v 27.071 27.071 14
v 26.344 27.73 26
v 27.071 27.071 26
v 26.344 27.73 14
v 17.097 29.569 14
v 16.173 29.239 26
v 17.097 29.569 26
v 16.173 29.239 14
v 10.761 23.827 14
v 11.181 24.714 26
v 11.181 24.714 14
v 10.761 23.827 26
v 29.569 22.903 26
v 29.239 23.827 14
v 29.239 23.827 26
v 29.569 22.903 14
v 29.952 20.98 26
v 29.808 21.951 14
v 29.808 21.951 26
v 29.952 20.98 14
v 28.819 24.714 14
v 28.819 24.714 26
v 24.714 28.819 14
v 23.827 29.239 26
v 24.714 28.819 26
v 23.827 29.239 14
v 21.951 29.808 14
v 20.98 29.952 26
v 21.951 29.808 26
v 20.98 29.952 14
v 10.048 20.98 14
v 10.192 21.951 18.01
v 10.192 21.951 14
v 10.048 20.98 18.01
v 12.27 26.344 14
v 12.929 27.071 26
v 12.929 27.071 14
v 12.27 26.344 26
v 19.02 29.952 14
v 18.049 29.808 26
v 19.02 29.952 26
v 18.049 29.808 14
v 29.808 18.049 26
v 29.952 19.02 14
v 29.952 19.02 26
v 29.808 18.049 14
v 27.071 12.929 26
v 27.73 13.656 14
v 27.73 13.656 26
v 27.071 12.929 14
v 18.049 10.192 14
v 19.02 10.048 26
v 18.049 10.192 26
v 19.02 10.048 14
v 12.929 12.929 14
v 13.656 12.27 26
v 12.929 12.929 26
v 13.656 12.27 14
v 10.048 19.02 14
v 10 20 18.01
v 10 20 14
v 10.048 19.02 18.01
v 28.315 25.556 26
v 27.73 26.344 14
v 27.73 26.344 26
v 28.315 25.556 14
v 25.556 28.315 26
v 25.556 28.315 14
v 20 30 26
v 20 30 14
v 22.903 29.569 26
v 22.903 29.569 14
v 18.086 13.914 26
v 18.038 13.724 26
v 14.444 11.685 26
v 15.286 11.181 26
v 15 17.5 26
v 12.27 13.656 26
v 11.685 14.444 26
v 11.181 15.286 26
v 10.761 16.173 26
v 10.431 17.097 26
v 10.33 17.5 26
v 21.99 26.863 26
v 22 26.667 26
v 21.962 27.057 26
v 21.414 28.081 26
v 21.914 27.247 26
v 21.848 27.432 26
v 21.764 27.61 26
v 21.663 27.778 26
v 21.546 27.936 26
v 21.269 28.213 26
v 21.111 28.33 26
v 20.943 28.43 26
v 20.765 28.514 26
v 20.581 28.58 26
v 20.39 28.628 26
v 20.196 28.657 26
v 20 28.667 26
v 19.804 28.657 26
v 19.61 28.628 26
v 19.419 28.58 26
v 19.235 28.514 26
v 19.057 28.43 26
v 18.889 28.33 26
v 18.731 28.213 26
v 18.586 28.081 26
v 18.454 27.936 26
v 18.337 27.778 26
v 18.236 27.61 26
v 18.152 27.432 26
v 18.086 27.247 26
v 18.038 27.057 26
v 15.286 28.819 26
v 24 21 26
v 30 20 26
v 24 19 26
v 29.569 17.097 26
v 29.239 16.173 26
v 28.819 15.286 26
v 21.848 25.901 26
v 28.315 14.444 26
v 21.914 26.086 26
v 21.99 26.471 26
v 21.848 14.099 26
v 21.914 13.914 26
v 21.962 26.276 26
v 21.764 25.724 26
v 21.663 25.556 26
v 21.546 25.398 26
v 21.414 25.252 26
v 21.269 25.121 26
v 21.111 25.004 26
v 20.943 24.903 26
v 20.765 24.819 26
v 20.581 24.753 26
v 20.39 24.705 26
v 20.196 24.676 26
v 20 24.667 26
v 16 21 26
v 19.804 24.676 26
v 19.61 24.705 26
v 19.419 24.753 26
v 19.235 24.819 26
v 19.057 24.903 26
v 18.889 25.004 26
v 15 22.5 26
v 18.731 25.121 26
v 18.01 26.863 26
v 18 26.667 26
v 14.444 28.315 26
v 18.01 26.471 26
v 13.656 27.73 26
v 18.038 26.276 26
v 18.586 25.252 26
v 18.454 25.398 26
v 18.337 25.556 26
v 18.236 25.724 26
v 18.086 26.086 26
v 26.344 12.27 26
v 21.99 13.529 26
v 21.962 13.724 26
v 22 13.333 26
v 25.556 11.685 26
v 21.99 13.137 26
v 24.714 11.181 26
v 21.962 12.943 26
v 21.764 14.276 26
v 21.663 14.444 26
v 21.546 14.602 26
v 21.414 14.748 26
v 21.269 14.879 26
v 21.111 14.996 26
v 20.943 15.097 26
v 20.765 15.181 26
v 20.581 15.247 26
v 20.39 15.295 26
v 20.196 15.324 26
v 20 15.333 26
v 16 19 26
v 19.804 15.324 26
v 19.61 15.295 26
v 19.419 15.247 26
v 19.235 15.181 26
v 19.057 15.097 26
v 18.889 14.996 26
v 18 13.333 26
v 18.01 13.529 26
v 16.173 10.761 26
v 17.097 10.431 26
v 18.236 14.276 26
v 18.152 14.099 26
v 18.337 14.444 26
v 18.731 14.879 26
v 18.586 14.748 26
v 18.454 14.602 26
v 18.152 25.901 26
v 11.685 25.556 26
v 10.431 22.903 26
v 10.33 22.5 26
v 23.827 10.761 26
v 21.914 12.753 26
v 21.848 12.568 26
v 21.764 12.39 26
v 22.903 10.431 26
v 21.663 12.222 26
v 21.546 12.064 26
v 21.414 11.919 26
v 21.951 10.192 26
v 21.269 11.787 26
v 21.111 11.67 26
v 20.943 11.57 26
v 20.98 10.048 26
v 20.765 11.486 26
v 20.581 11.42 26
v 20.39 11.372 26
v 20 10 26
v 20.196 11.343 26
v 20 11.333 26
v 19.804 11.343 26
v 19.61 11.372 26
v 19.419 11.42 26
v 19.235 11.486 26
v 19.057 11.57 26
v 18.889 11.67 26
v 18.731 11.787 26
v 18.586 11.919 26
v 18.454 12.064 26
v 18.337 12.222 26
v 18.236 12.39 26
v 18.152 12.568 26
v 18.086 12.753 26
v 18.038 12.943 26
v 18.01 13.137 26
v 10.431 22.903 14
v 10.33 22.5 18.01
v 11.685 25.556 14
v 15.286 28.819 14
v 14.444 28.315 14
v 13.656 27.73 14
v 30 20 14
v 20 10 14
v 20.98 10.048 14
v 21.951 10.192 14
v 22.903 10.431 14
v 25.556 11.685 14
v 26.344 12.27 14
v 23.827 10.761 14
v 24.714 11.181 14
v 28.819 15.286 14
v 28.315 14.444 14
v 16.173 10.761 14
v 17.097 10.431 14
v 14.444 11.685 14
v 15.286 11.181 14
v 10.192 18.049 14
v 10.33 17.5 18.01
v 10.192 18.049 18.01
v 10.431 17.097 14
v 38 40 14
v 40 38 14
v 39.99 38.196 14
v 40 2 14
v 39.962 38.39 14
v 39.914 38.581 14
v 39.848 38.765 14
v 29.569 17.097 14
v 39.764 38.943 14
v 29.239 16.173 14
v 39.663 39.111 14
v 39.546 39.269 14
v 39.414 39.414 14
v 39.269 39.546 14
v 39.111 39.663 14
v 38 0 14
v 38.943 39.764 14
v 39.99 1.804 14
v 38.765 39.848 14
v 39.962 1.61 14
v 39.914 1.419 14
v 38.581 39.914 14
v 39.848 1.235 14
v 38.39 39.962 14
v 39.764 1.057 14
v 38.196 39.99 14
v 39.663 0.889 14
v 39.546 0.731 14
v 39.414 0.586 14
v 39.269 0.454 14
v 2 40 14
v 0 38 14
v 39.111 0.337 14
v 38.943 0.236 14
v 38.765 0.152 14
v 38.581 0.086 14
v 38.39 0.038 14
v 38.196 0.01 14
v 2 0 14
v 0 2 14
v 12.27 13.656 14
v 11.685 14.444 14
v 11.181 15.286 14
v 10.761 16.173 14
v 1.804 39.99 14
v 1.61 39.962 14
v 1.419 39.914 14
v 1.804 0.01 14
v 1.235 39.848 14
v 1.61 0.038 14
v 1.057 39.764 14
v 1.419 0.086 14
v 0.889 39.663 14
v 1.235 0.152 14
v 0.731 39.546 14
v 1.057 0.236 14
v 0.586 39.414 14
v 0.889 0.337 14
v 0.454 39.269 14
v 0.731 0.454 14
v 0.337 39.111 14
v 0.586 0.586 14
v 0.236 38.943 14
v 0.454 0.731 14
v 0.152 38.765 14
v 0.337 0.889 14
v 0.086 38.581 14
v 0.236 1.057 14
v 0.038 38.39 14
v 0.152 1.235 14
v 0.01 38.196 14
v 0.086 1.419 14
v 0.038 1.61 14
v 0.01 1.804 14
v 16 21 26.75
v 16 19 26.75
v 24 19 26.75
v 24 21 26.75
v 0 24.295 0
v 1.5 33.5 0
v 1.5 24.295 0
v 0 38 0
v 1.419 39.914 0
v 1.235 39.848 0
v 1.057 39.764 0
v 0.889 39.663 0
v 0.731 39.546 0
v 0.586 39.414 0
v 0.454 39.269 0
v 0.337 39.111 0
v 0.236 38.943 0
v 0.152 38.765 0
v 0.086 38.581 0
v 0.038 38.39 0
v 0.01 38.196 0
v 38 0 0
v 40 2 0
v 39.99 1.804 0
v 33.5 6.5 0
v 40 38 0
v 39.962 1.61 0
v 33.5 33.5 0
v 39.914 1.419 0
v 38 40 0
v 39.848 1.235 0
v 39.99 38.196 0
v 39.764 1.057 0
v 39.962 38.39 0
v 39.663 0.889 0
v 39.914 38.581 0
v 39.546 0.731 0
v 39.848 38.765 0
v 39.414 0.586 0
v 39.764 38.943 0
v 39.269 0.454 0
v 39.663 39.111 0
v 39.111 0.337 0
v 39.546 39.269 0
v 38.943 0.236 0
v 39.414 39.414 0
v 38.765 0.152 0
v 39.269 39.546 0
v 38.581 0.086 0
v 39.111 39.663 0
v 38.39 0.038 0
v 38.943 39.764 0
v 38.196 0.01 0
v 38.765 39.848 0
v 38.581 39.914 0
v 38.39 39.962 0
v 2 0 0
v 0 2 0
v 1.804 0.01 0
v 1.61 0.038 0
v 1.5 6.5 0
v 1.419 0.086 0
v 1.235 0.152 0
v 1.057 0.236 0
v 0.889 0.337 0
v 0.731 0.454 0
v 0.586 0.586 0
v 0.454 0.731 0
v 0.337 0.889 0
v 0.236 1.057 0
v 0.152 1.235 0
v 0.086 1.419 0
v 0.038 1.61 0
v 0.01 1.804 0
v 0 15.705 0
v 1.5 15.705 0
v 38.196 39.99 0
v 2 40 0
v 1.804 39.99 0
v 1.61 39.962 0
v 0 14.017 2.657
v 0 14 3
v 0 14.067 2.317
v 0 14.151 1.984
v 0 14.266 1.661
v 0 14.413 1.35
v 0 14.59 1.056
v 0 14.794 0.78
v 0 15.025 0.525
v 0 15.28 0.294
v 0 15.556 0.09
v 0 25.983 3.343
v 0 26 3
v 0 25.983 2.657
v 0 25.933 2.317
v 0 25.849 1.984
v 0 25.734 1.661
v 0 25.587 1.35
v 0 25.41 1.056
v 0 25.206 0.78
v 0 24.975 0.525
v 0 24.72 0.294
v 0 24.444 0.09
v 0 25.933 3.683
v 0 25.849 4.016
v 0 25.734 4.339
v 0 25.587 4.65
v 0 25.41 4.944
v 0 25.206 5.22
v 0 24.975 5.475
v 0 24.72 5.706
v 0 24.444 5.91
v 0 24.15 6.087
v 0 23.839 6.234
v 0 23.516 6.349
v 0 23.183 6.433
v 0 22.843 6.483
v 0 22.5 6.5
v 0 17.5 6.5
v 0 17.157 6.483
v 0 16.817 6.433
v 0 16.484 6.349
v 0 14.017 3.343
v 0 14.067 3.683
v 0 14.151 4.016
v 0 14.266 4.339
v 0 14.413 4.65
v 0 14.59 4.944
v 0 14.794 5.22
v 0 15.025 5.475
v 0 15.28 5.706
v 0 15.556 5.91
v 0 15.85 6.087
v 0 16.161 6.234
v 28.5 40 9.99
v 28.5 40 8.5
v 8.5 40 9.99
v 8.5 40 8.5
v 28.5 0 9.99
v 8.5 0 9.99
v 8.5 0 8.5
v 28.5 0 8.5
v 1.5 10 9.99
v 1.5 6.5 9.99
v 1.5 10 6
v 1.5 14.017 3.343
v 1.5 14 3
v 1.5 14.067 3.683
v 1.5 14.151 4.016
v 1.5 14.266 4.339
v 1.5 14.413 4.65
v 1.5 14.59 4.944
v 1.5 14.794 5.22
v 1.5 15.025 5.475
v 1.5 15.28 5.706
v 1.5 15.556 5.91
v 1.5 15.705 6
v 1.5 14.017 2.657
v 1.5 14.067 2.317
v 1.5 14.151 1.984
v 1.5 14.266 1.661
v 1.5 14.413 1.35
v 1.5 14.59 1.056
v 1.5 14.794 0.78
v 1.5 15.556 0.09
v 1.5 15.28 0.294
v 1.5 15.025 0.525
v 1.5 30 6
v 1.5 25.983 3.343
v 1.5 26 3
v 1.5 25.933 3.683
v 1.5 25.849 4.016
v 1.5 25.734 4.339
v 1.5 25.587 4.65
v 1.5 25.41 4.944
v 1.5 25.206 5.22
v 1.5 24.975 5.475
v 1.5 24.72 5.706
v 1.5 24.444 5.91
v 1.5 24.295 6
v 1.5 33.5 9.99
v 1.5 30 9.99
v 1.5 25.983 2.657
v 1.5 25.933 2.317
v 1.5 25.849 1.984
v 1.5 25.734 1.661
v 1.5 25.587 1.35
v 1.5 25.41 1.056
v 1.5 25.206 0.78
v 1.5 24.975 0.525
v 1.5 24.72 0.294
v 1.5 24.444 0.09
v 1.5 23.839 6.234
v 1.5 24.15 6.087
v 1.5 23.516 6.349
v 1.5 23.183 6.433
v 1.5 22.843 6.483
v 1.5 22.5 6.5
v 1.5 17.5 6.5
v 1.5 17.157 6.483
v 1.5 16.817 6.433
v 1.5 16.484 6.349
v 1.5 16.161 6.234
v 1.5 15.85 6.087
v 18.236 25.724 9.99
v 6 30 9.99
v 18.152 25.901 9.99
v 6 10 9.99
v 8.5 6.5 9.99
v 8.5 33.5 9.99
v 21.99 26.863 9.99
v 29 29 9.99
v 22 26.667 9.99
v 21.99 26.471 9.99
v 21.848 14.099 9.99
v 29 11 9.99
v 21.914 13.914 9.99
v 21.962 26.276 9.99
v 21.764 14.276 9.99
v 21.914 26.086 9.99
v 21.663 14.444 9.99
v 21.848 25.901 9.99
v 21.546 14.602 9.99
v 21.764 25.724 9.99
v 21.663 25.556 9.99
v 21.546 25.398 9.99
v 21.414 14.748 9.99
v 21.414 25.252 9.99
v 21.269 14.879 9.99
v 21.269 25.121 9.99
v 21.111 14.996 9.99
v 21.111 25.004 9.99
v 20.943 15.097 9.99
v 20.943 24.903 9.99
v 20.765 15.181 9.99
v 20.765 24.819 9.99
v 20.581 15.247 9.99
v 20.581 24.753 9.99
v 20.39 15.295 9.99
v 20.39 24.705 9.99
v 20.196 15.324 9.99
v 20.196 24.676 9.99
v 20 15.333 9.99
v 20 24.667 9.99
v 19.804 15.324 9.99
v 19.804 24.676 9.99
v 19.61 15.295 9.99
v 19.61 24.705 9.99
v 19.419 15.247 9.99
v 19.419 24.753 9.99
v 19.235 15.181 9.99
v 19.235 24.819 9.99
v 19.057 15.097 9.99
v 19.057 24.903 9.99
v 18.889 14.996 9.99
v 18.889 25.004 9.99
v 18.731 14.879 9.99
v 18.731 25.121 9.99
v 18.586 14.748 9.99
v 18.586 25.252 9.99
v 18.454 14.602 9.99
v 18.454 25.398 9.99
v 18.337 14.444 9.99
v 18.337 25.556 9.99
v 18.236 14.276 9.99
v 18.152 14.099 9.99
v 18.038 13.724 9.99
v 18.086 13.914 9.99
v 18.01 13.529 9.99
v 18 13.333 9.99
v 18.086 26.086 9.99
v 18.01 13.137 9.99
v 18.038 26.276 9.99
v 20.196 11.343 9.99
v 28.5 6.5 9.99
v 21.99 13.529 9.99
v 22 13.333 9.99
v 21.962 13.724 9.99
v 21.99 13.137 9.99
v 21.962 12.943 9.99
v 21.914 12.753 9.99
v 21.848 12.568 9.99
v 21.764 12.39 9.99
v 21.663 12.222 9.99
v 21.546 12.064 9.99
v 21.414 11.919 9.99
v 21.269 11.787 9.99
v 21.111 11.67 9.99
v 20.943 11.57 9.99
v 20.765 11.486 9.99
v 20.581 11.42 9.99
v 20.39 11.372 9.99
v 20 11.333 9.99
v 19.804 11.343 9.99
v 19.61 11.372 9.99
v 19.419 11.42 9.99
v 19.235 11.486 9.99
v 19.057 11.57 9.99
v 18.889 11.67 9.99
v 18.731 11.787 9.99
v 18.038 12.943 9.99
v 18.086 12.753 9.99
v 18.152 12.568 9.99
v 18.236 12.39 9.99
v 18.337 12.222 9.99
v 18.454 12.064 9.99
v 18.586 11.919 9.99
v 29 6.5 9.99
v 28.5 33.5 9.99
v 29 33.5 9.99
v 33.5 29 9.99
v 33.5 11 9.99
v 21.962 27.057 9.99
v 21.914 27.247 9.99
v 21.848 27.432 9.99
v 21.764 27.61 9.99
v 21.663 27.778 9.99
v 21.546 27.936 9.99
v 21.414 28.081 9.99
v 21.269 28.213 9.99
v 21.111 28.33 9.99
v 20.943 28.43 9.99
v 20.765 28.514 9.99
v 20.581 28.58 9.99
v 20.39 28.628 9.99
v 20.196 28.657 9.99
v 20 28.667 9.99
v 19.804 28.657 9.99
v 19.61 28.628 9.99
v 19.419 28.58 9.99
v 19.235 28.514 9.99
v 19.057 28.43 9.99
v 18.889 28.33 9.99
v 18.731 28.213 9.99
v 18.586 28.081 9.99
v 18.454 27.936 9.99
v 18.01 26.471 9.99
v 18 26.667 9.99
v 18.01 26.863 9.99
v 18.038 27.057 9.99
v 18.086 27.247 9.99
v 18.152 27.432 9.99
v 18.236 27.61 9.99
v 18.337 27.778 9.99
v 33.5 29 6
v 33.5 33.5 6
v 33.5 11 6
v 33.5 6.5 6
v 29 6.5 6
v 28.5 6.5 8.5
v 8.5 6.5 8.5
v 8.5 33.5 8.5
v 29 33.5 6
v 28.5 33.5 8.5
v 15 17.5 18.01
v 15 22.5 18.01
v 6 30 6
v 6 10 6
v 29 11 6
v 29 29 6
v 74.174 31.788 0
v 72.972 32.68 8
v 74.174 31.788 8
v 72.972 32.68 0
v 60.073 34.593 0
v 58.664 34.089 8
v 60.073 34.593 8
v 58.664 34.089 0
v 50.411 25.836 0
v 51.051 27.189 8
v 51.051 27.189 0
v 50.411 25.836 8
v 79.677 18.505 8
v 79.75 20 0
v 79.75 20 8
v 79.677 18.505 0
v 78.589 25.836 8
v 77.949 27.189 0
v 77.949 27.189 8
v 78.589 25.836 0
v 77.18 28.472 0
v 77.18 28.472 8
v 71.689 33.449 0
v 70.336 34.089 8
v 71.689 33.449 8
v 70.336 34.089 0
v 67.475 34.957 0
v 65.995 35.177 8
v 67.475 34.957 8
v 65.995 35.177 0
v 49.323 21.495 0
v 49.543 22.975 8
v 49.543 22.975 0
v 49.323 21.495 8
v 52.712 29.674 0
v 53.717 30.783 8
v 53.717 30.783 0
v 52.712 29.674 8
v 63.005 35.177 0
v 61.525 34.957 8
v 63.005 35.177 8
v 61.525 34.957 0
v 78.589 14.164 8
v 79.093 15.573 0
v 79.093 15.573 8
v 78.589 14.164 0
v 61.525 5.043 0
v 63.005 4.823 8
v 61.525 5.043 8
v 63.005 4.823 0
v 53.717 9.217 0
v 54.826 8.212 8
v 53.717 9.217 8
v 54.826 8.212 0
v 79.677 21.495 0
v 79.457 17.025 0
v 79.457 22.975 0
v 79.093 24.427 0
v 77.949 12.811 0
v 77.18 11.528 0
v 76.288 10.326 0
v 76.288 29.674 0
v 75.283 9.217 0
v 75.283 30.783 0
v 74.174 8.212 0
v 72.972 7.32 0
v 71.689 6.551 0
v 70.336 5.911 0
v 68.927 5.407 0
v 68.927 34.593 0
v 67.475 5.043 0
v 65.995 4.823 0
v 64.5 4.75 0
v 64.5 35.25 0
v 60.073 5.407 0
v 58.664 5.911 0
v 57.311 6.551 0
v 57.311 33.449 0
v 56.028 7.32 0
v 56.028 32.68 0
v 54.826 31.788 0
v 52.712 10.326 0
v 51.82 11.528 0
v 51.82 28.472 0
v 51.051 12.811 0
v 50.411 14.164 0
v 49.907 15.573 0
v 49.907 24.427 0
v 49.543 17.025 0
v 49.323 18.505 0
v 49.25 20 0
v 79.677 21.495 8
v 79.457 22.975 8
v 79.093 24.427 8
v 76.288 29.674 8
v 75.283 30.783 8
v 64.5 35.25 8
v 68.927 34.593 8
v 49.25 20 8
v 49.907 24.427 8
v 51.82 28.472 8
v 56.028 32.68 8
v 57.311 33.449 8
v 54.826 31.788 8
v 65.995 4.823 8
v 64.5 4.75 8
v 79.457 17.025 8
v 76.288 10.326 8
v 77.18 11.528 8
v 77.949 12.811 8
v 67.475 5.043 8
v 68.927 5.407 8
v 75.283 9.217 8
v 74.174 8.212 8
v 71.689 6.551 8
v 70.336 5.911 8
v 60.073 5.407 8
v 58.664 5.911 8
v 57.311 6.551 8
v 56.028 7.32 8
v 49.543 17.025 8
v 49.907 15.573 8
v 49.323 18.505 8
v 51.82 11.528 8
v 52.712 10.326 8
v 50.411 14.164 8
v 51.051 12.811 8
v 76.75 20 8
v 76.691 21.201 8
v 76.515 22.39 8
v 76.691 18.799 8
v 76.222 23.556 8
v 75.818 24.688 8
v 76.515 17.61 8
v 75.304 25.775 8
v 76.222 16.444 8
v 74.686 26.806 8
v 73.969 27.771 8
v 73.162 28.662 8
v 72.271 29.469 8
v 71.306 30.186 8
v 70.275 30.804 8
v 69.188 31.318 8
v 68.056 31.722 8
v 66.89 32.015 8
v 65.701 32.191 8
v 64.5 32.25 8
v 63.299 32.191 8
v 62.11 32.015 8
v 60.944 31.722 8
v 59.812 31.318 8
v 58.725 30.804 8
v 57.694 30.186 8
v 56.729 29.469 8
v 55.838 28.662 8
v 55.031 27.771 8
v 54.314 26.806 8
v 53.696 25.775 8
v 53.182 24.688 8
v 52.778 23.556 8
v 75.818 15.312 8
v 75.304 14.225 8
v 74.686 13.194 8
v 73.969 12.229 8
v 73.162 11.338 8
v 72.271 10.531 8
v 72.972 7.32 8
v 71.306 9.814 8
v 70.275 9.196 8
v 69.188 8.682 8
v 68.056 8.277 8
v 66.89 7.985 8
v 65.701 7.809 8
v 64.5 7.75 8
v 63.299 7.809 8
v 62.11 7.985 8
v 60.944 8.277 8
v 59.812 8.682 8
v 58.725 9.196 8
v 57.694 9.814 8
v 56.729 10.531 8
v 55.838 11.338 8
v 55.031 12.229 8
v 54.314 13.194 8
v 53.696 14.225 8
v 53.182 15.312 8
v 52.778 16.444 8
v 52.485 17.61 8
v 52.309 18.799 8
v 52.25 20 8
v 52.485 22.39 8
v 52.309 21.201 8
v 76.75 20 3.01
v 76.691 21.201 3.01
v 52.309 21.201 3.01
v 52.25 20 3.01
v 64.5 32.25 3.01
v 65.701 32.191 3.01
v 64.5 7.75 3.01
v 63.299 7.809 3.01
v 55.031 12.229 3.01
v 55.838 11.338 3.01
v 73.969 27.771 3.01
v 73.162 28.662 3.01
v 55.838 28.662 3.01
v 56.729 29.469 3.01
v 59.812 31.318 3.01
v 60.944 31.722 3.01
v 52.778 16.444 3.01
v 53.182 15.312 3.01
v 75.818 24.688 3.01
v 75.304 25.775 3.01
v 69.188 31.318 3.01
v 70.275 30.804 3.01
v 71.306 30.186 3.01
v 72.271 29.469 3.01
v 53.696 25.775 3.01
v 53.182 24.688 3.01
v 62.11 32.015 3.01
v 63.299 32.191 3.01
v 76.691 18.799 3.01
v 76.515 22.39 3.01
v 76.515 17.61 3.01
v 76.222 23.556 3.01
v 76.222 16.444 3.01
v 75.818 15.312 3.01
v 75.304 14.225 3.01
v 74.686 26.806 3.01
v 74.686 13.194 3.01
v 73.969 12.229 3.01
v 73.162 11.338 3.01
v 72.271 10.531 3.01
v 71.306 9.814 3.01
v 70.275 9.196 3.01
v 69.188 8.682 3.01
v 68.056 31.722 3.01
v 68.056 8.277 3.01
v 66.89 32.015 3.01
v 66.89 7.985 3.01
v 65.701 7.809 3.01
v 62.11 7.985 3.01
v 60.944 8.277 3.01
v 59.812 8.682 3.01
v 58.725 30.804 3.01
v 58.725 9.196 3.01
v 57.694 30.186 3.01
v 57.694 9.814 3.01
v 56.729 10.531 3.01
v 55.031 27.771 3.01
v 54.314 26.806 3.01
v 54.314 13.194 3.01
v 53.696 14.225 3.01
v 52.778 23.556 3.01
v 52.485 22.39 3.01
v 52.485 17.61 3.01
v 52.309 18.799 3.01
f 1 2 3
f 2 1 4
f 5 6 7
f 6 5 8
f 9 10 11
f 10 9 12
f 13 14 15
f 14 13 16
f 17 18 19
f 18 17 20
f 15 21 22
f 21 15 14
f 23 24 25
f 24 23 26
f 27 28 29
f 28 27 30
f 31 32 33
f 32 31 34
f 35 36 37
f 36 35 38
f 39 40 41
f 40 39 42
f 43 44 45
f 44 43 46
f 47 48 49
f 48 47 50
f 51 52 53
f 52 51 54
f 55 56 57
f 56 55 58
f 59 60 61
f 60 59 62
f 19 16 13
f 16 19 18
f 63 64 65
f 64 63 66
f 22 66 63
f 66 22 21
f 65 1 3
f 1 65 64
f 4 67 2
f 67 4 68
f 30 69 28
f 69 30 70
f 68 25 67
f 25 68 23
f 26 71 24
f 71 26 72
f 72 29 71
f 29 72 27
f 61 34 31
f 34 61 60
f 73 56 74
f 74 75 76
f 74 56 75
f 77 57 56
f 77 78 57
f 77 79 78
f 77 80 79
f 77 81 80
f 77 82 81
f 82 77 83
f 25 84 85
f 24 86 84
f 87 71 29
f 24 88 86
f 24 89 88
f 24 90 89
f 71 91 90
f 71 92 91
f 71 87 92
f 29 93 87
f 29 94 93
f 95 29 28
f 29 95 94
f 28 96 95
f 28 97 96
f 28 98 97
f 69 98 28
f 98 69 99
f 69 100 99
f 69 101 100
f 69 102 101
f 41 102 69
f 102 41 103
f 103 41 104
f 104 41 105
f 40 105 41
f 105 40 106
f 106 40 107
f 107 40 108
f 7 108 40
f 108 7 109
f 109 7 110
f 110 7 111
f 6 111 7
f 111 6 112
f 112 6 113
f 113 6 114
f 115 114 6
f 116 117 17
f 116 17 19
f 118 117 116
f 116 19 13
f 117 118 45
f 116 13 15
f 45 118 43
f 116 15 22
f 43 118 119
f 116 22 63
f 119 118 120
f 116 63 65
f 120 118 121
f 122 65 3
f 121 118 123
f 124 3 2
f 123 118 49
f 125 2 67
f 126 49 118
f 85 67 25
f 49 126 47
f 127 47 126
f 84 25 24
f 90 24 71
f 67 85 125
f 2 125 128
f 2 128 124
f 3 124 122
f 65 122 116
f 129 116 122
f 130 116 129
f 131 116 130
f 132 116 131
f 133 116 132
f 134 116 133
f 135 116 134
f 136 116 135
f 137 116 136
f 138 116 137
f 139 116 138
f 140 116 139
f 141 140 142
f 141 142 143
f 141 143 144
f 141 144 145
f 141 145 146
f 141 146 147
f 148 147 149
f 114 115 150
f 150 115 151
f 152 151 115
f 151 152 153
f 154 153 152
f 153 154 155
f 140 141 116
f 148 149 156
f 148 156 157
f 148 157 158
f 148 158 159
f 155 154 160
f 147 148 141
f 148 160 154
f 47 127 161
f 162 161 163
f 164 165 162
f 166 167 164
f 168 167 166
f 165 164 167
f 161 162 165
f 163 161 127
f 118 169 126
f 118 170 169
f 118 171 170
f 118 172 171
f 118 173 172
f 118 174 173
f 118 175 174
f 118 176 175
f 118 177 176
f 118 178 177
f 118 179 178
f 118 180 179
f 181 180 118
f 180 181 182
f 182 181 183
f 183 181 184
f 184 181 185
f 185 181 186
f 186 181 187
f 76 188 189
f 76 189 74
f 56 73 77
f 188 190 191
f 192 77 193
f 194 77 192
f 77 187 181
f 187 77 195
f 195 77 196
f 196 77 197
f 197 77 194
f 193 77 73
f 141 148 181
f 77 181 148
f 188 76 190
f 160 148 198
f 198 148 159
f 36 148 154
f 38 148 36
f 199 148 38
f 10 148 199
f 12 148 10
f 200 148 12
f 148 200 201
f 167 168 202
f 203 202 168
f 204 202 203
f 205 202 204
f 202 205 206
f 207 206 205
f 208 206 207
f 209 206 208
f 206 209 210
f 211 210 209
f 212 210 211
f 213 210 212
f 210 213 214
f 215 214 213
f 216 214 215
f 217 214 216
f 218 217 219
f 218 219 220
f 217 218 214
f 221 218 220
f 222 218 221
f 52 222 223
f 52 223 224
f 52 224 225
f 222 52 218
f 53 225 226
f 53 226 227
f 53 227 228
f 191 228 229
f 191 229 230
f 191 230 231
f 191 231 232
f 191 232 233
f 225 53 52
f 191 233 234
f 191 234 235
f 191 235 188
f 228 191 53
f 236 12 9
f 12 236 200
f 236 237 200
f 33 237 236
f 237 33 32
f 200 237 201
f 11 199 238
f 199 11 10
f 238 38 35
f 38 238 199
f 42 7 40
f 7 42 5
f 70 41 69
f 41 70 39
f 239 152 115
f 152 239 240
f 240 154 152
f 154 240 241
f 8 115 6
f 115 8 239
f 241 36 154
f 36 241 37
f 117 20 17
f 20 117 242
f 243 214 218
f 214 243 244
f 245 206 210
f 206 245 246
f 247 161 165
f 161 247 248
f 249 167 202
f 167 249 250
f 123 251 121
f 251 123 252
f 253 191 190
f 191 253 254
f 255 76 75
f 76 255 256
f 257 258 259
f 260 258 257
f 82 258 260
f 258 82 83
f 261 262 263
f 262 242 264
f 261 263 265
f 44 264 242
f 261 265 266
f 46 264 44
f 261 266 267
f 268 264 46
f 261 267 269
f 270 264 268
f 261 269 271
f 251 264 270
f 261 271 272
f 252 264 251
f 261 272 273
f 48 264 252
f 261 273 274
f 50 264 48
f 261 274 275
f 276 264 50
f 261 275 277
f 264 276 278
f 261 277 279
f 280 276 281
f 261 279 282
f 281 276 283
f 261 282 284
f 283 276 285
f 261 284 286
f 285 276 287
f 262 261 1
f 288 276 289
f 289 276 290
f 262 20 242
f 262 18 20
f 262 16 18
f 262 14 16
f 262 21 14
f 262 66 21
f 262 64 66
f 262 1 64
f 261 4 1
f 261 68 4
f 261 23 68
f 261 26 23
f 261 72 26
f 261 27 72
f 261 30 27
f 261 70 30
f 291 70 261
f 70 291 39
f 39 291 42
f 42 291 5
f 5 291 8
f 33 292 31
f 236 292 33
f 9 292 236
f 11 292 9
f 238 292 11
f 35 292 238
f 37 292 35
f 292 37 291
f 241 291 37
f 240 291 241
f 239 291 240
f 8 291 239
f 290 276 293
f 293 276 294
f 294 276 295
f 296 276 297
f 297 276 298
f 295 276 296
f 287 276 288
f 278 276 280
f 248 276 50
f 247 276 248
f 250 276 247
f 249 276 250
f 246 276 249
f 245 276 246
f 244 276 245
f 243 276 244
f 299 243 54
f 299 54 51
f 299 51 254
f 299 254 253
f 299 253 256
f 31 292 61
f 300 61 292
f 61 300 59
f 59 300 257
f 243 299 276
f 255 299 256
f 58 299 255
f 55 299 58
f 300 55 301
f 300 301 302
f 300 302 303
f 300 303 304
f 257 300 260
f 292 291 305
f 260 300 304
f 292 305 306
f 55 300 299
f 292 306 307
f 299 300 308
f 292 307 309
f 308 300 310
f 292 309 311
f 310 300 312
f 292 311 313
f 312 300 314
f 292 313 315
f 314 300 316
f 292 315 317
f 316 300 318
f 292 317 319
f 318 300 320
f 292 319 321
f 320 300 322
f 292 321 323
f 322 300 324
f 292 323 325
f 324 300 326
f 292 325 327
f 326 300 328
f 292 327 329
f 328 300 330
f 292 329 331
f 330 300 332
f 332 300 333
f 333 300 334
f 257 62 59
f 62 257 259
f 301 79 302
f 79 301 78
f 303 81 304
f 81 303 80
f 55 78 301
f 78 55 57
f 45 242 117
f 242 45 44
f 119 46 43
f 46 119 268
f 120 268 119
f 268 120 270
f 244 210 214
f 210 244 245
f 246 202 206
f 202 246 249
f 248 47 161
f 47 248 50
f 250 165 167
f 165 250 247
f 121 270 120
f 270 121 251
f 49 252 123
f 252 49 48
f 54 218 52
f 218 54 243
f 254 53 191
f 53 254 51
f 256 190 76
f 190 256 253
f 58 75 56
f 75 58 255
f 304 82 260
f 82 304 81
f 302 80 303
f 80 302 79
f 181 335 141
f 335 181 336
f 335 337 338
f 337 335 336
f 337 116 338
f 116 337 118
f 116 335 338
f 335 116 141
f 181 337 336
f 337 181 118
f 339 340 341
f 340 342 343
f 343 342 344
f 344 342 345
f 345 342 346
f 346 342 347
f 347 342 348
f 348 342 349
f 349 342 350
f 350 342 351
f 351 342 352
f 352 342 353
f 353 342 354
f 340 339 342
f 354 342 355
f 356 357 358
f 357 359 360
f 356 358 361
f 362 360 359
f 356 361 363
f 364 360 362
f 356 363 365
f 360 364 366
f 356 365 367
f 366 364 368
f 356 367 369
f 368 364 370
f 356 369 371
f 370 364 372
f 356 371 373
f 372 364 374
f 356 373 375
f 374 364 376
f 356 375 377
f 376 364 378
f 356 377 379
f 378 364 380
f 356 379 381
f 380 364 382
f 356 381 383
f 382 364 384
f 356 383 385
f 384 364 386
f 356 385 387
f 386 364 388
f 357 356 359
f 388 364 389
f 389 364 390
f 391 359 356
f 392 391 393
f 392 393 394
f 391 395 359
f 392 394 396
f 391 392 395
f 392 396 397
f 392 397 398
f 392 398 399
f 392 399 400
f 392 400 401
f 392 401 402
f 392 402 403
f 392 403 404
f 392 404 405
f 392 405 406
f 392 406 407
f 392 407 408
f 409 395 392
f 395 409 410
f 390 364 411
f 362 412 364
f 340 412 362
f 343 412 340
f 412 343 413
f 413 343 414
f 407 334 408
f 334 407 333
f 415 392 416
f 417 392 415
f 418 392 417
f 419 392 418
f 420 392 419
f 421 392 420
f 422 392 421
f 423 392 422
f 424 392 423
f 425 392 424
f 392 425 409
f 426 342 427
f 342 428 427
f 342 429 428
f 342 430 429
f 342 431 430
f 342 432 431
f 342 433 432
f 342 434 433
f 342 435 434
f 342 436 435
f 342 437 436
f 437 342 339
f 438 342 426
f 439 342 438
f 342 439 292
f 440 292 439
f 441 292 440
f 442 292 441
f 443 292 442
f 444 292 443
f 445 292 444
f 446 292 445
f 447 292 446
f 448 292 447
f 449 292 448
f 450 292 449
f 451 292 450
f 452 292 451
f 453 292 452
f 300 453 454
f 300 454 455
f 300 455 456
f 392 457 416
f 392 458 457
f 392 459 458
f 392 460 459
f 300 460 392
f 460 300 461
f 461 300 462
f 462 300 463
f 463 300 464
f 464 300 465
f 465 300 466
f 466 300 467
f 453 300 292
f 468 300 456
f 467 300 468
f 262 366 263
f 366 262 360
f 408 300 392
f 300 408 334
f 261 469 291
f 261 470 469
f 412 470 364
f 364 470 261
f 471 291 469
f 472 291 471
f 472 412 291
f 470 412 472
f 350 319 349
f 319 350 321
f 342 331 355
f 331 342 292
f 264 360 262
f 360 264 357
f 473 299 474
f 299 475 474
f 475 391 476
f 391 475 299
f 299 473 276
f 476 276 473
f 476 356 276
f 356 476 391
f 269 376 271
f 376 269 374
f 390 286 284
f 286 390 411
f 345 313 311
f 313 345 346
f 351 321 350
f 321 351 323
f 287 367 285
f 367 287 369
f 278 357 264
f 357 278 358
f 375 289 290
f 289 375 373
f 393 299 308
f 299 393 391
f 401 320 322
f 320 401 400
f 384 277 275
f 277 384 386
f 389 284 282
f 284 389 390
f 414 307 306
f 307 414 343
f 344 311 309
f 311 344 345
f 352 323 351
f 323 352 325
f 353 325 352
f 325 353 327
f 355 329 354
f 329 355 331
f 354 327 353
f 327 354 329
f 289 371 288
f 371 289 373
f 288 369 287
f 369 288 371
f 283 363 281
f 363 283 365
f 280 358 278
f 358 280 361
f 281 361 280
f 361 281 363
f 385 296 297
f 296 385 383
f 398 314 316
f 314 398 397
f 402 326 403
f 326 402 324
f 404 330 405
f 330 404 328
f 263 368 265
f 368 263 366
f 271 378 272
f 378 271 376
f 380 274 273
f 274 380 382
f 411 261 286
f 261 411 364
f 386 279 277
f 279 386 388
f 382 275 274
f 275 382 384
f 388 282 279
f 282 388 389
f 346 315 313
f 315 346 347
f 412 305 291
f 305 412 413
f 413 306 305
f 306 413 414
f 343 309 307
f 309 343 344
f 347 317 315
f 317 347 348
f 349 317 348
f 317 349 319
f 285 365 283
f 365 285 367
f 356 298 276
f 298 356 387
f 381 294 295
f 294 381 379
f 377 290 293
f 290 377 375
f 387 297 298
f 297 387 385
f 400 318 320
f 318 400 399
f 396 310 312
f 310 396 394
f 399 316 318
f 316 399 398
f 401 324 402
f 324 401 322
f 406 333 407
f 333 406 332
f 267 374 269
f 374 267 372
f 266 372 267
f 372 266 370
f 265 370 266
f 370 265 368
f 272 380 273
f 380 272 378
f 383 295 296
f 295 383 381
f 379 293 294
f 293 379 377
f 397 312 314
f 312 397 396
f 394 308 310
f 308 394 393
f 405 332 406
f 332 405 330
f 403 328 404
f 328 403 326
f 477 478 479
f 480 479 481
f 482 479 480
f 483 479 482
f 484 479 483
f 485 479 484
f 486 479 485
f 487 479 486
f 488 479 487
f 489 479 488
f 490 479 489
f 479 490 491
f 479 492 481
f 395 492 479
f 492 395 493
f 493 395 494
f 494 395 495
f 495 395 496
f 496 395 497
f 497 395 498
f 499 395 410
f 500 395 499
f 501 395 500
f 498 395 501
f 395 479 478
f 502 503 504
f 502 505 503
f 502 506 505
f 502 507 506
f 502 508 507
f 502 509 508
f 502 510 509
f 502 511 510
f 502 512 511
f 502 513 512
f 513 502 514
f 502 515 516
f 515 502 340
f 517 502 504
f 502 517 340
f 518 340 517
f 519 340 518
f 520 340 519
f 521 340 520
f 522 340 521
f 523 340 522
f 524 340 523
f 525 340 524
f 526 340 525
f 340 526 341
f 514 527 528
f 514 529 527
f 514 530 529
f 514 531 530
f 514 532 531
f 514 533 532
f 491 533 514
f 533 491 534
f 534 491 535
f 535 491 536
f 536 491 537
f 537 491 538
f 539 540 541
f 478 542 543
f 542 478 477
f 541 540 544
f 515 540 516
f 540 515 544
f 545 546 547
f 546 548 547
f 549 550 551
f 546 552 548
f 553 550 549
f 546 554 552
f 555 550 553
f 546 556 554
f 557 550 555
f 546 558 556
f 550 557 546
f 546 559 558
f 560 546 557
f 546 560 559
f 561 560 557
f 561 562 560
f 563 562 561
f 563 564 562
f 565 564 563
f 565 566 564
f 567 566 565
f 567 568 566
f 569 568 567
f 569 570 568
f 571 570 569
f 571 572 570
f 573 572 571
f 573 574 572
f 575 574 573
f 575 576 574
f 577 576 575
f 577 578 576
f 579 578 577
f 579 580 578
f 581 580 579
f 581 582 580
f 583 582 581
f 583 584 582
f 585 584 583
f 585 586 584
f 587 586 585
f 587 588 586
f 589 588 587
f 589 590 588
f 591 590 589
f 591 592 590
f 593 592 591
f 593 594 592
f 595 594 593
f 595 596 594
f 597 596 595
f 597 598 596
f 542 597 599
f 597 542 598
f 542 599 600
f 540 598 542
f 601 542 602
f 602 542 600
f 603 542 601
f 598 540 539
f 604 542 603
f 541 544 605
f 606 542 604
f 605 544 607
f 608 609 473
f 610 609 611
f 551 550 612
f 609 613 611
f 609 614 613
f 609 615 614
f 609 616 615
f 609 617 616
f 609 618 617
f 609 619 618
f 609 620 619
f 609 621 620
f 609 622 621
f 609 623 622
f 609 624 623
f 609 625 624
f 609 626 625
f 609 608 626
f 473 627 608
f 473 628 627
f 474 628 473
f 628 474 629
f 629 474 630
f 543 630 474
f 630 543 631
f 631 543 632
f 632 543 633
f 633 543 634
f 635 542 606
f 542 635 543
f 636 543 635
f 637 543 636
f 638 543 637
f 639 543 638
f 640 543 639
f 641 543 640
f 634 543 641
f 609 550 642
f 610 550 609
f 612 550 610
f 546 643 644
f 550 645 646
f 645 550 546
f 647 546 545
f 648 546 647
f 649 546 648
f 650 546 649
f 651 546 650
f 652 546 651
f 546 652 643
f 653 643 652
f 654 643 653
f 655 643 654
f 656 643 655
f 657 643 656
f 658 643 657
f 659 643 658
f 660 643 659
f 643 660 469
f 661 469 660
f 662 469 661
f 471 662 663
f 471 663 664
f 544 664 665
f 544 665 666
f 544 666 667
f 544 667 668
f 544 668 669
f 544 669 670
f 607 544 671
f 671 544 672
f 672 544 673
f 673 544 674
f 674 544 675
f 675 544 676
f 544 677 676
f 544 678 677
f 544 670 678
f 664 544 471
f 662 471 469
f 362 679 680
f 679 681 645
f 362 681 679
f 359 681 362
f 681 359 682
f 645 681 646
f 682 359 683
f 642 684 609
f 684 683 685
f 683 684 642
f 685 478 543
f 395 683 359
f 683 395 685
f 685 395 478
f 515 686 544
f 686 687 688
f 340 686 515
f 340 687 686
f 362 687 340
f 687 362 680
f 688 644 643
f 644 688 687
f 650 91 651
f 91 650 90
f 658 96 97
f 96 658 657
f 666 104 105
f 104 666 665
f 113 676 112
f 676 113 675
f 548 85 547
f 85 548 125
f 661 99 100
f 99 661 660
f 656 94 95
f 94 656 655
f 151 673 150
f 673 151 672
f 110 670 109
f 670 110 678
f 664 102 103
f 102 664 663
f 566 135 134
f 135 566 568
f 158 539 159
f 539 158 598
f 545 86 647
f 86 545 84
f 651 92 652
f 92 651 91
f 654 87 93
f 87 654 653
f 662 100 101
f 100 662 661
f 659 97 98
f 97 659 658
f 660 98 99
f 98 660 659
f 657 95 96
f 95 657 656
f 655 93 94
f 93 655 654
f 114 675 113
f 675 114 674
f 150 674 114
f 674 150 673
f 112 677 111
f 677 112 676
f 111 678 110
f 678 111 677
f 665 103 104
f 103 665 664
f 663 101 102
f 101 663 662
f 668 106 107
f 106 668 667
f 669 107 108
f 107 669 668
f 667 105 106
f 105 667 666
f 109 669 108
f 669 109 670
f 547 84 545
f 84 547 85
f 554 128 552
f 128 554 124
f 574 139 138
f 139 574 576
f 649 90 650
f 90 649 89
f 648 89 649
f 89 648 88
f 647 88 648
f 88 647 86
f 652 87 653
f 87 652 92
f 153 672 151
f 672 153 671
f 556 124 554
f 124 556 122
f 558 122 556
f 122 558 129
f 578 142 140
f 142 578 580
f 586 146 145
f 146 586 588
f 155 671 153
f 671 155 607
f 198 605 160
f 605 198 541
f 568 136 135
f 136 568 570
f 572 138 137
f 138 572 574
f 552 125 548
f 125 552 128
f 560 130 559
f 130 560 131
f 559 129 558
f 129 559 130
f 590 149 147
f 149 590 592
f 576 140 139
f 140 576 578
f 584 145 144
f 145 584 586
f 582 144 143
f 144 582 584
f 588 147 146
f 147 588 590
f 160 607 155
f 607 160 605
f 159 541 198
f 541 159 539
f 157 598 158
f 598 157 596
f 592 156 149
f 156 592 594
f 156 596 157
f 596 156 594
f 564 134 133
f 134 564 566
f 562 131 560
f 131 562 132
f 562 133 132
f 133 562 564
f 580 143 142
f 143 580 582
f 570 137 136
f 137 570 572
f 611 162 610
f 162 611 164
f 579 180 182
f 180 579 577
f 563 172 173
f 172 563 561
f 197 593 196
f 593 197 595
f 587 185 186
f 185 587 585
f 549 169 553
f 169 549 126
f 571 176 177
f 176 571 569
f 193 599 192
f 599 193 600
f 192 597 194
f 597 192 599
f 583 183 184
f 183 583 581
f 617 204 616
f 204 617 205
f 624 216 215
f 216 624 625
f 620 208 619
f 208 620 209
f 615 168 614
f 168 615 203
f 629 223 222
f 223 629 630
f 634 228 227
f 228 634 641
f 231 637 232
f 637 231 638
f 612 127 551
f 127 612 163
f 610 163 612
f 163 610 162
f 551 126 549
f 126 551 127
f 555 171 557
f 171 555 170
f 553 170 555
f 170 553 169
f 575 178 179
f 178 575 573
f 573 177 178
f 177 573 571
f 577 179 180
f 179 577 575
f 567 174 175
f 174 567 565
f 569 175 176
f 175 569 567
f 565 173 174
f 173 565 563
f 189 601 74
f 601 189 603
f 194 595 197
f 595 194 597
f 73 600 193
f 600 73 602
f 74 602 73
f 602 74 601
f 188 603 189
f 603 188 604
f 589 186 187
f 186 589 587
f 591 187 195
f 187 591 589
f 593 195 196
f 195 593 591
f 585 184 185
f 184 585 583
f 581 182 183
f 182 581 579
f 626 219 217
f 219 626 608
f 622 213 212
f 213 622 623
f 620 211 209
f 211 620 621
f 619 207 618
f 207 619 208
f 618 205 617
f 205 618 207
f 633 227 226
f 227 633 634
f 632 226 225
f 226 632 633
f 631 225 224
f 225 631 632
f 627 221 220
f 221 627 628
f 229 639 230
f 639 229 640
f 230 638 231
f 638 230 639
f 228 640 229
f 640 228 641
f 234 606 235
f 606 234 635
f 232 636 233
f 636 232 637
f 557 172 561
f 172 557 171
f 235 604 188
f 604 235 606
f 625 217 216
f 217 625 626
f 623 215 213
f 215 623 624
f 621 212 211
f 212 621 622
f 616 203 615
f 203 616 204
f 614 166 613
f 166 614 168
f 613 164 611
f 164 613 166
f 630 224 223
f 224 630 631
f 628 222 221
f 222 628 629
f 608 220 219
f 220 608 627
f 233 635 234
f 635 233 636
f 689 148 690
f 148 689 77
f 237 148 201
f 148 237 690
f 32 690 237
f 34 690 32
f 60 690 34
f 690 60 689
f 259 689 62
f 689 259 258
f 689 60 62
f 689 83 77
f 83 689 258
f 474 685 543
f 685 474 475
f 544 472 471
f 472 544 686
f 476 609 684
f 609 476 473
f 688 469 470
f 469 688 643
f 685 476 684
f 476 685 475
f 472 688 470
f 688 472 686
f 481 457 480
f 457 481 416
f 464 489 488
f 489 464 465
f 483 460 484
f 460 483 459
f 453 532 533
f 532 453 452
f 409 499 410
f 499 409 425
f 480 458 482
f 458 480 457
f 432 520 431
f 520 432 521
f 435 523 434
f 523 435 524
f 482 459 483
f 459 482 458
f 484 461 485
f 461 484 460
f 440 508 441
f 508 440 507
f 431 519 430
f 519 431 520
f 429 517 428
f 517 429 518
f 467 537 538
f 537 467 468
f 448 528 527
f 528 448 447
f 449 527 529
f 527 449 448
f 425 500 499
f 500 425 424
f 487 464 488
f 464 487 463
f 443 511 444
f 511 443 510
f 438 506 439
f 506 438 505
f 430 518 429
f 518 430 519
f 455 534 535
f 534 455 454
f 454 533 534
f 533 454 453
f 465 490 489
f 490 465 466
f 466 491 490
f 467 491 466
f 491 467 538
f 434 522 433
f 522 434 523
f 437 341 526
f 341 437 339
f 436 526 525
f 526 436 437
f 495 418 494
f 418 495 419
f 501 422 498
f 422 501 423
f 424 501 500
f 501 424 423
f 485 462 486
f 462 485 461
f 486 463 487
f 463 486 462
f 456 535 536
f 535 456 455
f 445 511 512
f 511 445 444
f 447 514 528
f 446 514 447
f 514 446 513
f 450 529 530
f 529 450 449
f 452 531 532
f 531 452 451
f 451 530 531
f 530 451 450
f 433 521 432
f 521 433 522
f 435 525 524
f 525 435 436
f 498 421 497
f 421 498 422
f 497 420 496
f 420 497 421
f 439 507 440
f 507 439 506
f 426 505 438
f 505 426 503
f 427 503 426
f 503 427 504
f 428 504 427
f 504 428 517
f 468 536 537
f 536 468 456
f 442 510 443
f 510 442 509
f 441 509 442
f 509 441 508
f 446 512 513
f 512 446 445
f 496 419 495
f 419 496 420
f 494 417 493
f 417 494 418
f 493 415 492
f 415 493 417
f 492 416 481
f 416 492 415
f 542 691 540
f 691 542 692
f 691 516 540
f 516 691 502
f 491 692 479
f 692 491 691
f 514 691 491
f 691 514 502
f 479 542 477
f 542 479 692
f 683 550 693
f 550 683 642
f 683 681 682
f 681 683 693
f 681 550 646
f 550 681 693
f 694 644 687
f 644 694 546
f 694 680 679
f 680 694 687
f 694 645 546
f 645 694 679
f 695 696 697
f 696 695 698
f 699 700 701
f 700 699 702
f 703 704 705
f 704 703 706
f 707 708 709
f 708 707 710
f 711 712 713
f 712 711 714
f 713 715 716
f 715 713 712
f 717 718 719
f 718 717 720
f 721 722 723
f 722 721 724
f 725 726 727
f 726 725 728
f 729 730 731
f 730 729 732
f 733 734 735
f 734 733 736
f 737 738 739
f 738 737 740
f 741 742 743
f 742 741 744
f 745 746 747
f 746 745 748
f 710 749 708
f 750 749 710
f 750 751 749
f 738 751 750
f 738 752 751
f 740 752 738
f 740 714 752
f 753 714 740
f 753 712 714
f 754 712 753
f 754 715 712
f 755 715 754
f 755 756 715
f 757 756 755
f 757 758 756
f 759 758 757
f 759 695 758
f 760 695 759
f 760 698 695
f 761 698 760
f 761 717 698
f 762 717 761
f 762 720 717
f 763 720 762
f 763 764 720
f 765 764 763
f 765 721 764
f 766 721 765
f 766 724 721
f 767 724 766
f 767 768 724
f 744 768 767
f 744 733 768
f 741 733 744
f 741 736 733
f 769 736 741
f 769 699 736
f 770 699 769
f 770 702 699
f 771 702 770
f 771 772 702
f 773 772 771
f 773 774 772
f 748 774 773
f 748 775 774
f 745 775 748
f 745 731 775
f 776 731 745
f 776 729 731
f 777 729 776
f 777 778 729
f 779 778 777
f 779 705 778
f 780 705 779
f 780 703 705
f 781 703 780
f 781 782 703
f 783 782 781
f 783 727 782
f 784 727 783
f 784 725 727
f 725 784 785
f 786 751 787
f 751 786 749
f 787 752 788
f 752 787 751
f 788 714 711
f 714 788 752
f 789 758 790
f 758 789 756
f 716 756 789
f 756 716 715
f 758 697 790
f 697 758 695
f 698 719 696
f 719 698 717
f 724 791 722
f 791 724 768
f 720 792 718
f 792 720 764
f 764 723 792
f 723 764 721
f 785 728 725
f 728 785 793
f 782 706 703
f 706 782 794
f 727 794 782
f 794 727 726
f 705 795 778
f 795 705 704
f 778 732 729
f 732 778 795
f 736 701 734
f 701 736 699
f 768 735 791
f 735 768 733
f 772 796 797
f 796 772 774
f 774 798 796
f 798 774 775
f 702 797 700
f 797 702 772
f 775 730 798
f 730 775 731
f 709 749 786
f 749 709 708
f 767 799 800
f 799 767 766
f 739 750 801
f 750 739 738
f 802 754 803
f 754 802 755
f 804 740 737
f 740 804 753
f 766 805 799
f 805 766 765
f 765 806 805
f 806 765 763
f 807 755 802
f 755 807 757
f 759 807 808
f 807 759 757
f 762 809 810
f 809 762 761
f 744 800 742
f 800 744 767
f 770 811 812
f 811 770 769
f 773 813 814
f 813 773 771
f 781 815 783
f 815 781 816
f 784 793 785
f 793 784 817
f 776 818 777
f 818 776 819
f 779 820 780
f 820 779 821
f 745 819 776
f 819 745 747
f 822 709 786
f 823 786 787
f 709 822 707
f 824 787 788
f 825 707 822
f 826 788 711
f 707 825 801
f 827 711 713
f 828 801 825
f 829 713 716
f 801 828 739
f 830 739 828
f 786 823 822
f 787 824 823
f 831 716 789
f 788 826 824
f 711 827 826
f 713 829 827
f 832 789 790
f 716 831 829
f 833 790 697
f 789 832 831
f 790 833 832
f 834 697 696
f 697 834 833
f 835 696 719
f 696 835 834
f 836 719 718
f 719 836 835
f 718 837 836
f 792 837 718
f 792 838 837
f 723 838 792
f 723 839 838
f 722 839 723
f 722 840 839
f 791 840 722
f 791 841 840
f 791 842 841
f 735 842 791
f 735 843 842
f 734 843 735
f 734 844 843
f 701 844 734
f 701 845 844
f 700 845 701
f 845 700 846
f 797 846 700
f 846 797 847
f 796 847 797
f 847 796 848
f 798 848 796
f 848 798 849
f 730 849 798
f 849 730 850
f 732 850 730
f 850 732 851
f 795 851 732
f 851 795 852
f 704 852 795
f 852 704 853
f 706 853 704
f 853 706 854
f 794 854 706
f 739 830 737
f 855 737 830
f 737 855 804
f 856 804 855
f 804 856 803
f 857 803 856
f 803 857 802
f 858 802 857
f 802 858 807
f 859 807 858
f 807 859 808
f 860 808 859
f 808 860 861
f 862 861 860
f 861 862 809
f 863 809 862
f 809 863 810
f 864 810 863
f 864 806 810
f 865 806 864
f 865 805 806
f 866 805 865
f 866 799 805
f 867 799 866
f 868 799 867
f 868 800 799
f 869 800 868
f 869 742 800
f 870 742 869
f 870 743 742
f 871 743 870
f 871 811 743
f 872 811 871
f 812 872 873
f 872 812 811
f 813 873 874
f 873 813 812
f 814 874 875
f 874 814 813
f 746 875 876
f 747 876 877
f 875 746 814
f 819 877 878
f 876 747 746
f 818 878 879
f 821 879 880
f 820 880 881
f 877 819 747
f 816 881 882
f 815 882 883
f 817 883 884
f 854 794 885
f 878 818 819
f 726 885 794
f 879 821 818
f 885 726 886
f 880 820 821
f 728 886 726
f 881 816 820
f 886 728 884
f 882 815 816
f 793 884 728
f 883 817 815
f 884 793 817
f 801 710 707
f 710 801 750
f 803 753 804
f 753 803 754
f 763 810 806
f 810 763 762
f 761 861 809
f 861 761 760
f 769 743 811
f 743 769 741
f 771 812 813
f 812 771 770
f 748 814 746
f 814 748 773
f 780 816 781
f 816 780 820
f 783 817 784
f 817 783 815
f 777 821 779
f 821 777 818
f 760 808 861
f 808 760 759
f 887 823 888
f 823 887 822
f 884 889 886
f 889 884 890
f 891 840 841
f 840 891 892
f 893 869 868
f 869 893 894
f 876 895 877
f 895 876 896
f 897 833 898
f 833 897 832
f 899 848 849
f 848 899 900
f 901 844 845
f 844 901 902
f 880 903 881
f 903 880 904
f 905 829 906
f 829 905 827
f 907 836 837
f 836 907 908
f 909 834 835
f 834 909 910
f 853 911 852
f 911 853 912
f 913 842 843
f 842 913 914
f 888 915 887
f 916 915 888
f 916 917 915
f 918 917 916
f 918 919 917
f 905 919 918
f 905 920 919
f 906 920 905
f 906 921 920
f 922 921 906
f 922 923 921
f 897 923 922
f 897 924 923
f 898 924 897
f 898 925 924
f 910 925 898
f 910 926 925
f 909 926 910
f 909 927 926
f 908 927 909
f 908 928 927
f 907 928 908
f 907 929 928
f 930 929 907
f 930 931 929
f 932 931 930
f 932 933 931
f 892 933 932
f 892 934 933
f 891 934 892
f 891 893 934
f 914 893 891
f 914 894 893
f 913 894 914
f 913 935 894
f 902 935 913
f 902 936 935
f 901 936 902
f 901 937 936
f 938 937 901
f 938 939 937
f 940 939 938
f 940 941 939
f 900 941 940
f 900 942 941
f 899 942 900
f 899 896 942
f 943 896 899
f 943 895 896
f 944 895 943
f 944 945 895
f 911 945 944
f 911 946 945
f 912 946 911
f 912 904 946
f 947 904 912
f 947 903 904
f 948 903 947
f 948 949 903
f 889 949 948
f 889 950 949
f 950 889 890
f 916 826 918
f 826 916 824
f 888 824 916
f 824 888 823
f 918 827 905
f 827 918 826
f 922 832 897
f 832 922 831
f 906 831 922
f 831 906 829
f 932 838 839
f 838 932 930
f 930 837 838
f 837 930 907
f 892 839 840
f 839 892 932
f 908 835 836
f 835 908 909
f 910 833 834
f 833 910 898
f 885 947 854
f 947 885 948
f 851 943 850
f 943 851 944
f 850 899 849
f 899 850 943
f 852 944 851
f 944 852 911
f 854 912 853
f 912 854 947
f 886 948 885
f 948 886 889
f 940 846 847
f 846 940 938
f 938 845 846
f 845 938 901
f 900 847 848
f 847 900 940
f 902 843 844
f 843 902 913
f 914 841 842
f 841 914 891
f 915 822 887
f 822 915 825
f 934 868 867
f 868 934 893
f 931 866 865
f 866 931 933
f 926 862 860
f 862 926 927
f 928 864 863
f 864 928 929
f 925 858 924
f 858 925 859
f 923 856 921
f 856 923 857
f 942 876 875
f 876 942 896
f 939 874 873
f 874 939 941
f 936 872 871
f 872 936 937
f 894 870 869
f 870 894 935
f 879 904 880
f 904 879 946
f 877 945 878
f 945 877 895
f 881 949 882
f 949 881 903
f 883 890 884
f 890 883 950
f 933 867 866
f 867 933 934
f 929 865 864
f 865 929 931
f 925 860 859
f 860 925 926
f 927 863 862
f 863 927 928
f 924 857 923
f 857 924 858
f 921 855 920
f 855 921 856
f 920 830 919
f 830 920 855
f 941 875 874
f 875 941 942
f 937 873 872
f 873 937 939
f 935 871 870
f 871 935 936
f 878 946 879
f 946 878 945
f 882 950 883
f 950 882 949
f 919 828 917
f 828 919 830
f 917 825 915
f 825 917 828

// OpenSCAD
// file: ../../Various/SCAD/rounded_box.scad
/**
 * Small "library" for creating boxes with rounded edges.
 *
 * Hendrik Busch, 2017-18 (https://github.com/hmbusch)
 *
 */
 
/**
 * Creates a 2D-shape of a box with the given dimensions and rounded edges. 
 * Be sure to increase $fn for nicer edges.
 *
 * @param width
 *          the desired width of the box (default is 10mm)
 * @param depth
 *          the desired depth of the box (default is 10mm)
 * @param height
 *          the desired height of the box (default is 10mm)
 * @param edge_radius
 *          the radius of all the edges on the xy-plane (default is 2mm)
 */  
module box_with_round_edges_2d(width = 10, depth = 10, edge_radius = 2) {
    ed = edge_radius * 2;
    translate([edge_radius, edge_radius, 0]) hull() {
        circle(d = ed);
        translate([width - ed, 0, 0]) circle(d = ed);
        translate([0, depth - ed, 0]) circle(d = ed);
        translate([width - ed, depth - ed, 0]) circle(d = ed);    
    }
}
 
/**
 * Call to create a box with rounded edges (edges will be round on one plane only).
 * Be sure to increase $fn for nicer edges.
 * 
 * @param width
 *          the desired width of the box (default is 10mm)
 * @param depth
 *          the desired depth of the box (default is 10mm)
 * @param height
 *          the desired height of the box (default is 10mm)
 * @param edge_radius
 *          the radius of all the edges on the xy-plane (default is 2mm)
 *
 */
module box_with_round_edges_3d(width = 10, depth = 10, height = 10, edge_radius = 2) {
	linear_extrude(height = height) {
		box_with_round_edges_2d(width, depth, edge_radius);
	}
}

/**
 * Call to create a box with rounded edges (edges will be round on one plane only).
 * Be sure to increase $fn for nicer edges. This module has inputs that resemble
 * those of cube() so that it can act as a drop-in replacement.
 * 
 * @param dimensions
 *          3-value-array with x, y and z dimensions (default is 10x10x10mm).
 * @param edge_radius
 *          the radius of all the edges on the xy-plane (default is 2mm)
 *
 */
module box_with_round_edges_3d(dimensions = [10, 10, 10], edge_radius = 2) {
	linear_extrude(height = dimensions[2]) {
		box_with_round_edges_2d(dimensions[0], dimensions[1], edge_radius);
	}
}
// main file
use <../../Various/SCAD/rounded_box.scad>

$fn = 64;

begriplig_inner_dia = 20;
begriplig_outer_dia = 24.5;
begriplig_inner_height = 17;
begriplig_mounting_screw_dia = 5;
begriplig_mounting_screw_offset = 4;
begriplig_mounting_screw_protrusion = 5;

mount_cylinder_z = begriplig_inner_height - 5;

base_size_x = 40;
base_size_y = base_size_x;
base_size_z = 14;

wall_thickness = 3;

wemos_d1_mini_x = 32;
wemos_d1_mini_y = 27;
wemos_d1_mini_z = 8;

wemos_support_x = 4.5;
wemos_support_z = 4;
wemos_support_y_1 = 20;
wemos_support_y_2 = 4.5;

additional_space_z = 2;

cable_channel_dia = 4;

ventilation_z = 1.5;

usb_x = 12;
usb_z = 7;

cap_overlap = 5;

// Assert that the set parameters are ok
assert(base_size_z - wall_thickness > wemos_d1_mini_z + additional_space_z, "Base z-height is not high enough to house the Wemos module");
assert(base_size_x - 2 * wall_thickness > wemos_d1_mini_x, "Base x-width is not wide enough to house the Wemos module");
assert(base_size_y - 2 * wall_thickness > wemos_d1_mini_y, "Base y-length is not long enough to house the Wemos module");

module usb_cutout() {
    rotate([90, 0, 90])
        translate([usb_z/2, 0, 0])
            hull() {
                cylinder(d = usb_z, h = 2 * wall_thickness);
                translate([usb_x - usb_z, 0, 0])
                    cylinder(d = usb_z, h = 2 * wall_thickness);
            }
}

module stand() {
    union() {
        difference() {
            
            // Create the basic stand shape
            union() {
                box_with_round_edges_3d([base_size_x, base_size_y, base_size_z]);
                translate([base_size_x/2, base_size_y/2, base_size_z]) {
                    cylinder(d = begriplig_inner_dia, h = mount_cylinder_z);
                    translate([0, 0, mount_cylinder_z])
                        cube([8, 2, 1.5], center=true);
                }
            }
            
            // Create cutout for the Wemos module
            translate([wall_thickness/2, (base_size_y - wemos_d1_mini_y)/2, -0.01])
                cube([wemos_d1_mini_x, wemos_d1_mini_y, wemos_d1_mini_z + additional_space_z]);
            
            // Create cable channels
            translate([base_size_x/2, base_size_y/2 + begriplig_inner_dia/3, -0.01])
                cylinder(d = cable_channel_dia, h = base_size_z + mount_cylinder_z + 0.02);
            translate([base_size_x/2, base_size_y/2 - begriplig_inner_dia/3, -0.01])
                cylinder(d = cable_channel_dia, h = base_size_z + mount_cylinder_z + 0.02);
            
            // Create notch for mounting screw
            translate([(base_size_x - begriplig_inner_dia)/2, base_size_y/2 - begriplig_mounting_screw_dia/2, base_size_z + begriplig_mounting_screw_offset + 0.01])
                cube([begriplig_mounting_screw_protrusion, begriplig_mounting_screw_dia, mount_cylinder_z - begriplig_mounting_screw_offset]);
         
            // Some ventilation slits
            translate([base_size_x/4 - 1.5, -base_size_y/2, wemos_d1_mini_z - ventilation_z + additional_space_z])
                cube([base_size_x/2, 2 * base_size_y, ventilation_z - 0.01]);
            
            // USB cutout
            translate([-wall_thickness/2, (base_size_y - usb_x)/2, wemos_d1_mini_z/2 - 1])
                usb_cutout();
        }
        
        // Add Wemos supports
        translate([wall_thickness/2, base_size_y/2 - wemos_support_y_1/2, wemos_d1_mini_z + additional_space_z - wemos_support_z])
            cube([wemos_support_x, wemos_support_y_1, wemos_support_z]);
        translate([wall_thickness/2 + wemos_d1_mini_x - wemos_support_x, (base_size_y - wemos_d1_mini_y)/2, wemos_d1_mini_z + additional_space_z - wemos_support_z])
            cube([wemos_support_x, wemos_support_y_2, wemos_support_z]);
        translate([wall_thickness/2 + wemos_d1_mini_x - wemos_support_x, (base_size_y - wemos_d1_mini_y)/2 + wemos_d1_mini_y - wemos_support_y_2, wemos_d1_mini_z + additional_space_z - wemos_support_z])
            cube([wemos_support_x, wemos_support_y_2, wemos_support_z]);
    }
}

module cap() {
    difference() {
        cylinder(d = begriplig_outer_dia + 2 * wall_thickness, h = wall_thickness + cap_overlap);
        translate([0, 0, wall_thickness + 0.01])
            cylinder(d = begriplig_outer_dia, h = cap_overlap);
    }
}


stand();

translate([base_size_x + begriplig_outer_dia, base_size_y/2, 0])
    cap();
